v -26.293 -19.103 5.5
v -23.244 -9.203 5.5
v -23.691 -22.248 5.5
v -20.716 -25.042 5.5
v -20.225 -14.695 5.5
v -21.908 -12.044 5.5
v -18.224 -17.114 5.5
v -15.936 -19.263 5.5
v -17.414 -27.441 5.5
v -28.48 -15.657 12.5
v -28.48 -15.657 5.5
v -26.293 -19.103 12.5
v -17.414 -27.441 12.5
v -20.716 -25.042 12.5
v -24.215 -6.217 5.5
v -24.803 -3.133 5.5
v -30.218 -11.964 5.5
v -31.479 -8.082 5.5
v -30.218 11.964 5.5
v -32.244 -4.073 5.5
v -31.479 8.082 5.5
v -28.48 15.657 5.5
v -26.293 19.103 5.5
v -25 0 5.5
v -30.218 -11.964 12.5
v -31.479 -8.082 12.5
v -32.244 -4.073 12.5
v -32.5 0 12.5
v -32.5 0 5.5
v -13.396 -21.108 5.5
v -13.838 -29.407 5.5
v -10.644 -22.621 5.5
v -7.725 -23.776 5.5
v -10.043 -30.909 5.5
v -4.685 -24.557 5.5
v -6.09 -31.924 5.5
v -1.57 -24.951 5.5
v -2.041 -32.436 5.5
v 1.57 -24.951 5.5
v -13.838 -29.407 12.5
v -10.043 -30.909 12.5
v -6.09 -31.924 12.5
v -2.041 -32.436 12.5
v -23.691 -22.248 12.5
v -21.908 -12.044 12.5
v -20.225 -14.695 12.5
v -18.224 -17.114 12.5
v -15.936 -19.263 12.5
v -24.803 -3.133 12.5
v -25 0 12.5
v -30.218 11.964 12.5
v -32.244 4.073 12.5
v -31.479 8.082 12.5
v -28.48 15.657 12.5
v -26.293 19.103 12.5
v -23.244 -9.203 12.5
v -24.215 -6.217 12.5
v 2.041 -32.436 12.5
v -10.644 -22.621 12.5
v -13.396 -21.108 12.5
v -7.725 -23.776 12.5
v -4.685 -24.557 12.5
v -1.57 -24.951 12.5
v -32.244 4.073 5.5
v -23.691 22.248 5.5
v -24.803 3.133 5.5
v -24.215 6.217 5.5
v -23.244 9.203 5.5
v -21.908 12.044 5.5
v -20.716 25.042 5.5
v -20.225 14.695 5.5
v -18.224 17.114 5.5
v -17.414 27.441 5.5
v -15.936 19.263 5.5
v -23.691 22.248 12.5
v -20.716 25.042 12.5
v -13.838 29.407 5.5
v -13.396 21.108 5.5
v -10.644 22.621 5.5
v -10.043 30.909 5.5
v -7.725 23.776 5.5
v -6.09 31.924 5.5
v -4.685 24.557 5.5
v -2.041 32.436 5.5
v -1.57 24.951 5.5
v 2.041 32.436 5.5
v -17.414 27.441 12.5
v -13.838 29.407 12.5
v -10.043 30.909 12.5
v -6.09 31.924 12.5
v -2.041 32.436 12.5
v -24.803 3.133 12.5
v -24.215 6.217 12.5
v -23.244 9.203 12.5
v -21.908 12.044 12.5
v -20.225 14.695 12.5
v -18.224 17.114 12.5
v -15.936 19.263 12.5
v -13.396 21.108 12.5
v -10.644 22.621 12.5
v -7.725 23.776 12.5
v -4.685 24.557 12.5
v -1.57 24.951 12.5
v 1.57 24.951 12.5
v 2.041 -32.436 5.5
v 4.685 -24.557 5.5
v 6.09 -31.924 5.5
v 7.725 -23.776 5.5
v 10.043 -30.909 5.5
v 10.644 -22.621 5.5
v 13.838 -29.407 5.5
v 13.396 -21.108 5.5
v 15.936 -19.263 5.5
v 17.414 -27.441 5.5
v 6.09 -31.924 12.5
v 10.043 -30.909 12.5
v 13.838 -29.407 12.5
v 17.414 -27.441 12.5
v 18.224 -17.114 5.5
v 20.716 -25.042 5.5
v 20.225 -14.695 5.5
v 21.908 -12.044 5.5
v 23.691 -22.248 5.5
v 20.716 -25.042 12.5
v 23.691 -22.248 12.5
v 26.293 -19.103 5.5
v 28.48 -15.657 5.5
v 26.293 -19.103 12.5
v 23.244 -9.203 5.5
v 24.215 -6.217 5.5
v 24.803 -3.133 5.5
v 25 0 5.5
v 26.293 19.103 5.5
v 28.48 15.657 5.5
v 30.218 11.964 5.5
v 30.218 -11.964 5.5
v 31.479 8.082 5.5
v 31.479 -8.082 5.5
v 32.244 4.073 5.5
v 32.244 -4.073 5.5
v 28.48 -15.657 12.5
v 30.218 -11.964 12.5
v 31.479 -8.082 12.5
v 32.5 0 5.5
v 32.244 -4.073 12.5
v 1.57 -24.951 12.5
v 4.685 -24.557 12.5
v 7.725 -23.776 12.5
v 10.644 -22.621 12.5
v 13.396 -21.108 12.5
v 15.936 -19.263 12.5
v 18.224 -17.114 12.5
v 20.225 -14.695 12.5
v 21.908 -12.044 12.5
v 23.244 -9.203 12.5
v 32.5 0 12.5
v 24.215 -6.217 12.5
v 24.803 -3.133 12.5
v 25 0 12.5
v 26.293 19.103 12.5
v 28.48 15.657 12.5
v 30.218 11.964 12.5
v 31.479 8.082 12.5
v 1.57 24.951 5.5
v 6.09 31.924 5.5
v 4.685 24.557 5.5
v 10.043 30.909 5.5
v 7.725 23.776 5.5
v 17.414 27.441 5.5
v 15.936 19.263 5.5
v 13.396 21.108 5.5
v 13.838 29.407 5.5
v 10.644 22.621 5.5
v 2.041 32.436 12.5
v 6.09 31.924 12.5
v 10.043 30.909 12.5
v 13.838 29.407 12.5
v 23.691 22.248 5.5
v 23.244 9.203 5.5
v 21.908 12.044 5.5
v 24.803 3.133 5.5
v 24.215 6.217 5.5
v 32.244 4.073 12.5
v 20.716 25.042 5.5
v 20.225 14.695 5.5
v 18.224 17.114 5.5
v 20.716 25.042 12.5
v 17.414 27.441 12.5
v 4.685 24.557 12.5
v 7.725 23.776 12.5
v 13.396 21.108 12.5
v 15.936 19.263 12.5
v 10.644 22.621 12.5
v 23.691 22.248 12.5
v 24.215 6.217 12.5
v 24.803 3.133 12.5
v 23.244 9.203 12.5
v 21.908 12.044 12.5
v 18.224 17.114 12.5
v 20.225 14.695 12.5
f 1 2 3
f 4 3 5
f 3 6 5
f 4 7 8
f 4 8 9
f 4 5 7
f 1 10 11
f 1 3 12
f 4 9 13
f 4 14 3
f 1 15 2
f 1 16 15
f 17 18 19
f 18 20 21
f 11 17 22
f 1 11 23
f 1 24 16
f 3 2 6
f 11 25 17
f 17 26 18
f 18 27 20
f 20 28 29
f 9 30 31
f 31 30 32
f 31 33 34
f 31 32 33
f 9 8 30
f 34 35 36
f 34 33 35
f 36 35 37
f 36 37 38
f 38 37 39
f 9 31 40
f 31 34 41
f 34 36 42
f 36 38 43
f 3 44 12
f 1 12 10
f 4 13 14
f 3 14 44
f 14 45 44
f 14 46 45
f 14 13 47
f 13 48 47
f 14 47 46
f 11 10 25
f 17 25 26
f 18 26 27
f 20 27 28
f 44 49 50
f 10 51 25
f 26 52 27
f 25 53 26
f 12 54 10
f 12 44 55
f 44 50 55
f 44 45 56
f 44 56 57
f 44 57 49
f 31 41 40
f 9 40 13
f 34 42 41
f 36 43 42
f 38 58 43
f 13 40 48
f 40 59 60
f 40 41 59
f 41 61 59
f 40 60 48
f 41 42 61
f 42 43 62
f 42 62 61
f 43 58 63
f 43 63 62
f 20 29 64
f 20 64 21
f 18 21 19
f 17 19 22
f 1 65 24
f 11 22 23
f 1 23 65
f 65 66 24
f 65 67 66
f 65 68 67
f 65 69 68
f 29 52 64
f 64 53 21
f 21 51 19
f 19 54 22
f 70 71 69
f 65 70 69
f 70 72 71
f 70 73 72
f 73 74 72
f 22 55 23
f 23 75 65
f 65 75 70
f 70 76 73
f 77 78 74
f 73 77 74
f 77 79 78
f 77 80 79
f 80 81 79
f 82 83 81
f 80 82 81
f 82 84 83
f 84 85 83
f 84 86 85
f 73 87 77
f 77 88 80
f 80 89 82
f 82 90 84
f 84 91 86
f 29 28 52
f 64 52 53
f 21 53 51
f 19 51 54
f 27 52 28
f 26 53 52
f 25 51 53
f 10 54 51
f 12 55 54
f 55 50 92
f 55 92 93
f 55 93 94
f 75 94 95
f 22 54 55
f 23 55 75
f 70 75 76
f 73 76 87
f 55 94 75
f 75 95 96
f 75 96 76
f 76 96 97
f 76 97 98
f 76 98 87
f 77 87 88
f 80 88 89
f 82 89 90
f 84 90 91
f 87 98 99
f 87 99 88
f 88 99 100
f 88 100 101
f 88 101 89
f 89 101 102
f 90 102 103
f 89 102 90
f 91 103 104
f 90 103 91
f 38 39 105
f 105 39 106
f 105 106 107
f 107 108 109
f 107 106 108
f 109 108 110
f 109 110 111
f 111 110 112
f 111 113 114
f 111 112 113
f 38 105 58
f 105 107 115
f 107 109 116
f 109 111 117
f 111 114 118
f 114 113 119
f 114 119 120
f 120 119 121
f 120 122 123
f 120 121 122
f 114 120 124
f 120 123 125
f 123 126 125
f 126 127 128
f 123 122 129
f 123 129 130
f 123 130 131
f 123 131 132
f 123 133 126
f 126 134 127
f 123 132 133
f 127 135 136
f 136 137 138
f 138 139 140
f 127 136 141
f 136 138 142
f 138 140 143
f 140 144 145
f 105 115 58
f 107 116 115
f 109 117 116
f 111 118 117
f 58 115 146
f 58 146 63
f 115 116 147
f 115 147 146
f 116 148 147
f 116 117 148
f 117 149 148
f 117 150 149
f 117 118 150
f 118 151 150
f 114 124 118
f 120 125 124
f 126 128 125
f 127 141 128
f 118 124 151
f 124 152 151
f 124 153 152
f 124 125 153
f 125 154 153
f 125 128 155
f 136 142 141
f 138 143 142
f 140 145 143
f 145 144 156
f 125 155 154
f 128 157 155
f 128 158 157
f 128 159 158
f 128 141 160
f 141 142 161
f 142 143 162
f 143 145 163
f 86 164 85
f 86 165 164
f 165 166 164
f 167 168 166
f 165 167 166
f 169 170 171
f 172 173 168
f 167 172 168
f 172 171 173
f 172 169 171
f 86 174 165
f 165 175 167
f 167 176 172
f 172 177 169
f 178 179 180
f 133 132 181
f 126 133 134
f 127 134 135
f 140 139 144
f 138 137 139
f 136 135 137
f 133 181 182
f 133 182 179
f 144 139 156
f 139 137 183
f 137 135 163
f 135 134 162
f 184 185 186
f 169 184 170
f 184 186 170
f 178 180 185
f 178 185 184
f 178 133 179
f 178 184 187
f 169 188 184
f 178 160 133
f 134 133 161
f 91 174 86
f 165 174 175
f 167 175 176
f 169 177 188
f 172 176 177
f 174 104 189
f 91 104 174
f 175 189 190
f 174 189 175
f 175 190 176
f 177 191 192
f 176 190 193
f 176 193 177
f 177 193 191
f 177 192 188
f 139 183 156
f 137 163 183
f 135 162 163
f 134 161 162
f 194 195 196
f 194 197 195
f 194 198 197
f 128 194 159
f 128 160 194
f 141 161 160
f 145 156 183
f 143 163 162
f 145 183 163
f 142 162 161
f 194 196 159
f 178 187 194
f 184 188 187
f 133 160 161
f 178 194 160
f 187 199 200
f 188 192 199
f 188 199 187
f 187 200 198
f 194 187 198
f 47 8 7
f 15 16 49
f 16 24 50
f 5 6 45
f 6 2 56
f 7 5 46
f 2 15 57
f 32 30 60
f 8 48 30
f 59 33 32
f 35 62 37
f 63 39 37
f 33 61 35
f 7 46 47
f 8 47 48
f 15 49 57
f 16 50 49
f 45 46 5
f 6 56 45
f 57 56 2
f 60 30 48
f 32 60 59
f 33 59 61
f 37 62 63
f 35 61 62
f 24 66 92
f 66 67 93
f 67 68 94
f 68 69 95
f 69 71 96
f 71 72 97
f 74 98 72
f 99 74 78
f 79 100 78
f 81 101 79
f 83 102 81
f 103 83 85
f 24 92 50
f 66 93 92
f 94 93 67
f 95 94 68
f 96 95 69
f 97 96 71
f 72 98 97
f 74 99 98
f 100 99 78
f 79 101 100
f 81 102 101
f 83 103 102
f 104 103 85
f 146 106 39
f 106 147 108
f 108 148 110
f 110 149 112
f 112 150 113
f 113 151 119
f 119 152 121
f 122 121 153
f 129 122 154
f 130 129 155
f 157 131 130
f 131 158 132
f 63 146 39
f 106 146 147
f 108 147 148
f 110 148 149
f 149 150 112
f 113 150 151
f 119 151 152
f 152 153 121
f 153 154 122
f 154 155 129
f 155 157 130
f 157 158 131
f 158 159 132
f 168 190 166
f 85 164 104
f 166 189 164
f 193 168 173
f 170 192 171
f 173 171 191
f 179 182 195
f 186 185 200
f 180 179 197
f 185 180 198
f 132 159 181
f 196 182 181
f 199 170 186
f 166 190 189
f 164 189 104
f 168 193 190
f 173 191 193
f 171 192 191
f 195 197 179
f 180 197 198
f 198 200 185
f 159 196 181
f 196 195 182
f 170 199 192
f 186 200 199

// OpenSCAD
$fn = 50;

difference() {
	union() {
		translate(v = [0, 0, 5.5]) {
			cylinder(h = 7, r = 32.5);
		}
	}
	union() {
		translate(v = [0, 0, 4.5]) {
			cylinder(h = 9, r = 25.0);
		}
	}
}
